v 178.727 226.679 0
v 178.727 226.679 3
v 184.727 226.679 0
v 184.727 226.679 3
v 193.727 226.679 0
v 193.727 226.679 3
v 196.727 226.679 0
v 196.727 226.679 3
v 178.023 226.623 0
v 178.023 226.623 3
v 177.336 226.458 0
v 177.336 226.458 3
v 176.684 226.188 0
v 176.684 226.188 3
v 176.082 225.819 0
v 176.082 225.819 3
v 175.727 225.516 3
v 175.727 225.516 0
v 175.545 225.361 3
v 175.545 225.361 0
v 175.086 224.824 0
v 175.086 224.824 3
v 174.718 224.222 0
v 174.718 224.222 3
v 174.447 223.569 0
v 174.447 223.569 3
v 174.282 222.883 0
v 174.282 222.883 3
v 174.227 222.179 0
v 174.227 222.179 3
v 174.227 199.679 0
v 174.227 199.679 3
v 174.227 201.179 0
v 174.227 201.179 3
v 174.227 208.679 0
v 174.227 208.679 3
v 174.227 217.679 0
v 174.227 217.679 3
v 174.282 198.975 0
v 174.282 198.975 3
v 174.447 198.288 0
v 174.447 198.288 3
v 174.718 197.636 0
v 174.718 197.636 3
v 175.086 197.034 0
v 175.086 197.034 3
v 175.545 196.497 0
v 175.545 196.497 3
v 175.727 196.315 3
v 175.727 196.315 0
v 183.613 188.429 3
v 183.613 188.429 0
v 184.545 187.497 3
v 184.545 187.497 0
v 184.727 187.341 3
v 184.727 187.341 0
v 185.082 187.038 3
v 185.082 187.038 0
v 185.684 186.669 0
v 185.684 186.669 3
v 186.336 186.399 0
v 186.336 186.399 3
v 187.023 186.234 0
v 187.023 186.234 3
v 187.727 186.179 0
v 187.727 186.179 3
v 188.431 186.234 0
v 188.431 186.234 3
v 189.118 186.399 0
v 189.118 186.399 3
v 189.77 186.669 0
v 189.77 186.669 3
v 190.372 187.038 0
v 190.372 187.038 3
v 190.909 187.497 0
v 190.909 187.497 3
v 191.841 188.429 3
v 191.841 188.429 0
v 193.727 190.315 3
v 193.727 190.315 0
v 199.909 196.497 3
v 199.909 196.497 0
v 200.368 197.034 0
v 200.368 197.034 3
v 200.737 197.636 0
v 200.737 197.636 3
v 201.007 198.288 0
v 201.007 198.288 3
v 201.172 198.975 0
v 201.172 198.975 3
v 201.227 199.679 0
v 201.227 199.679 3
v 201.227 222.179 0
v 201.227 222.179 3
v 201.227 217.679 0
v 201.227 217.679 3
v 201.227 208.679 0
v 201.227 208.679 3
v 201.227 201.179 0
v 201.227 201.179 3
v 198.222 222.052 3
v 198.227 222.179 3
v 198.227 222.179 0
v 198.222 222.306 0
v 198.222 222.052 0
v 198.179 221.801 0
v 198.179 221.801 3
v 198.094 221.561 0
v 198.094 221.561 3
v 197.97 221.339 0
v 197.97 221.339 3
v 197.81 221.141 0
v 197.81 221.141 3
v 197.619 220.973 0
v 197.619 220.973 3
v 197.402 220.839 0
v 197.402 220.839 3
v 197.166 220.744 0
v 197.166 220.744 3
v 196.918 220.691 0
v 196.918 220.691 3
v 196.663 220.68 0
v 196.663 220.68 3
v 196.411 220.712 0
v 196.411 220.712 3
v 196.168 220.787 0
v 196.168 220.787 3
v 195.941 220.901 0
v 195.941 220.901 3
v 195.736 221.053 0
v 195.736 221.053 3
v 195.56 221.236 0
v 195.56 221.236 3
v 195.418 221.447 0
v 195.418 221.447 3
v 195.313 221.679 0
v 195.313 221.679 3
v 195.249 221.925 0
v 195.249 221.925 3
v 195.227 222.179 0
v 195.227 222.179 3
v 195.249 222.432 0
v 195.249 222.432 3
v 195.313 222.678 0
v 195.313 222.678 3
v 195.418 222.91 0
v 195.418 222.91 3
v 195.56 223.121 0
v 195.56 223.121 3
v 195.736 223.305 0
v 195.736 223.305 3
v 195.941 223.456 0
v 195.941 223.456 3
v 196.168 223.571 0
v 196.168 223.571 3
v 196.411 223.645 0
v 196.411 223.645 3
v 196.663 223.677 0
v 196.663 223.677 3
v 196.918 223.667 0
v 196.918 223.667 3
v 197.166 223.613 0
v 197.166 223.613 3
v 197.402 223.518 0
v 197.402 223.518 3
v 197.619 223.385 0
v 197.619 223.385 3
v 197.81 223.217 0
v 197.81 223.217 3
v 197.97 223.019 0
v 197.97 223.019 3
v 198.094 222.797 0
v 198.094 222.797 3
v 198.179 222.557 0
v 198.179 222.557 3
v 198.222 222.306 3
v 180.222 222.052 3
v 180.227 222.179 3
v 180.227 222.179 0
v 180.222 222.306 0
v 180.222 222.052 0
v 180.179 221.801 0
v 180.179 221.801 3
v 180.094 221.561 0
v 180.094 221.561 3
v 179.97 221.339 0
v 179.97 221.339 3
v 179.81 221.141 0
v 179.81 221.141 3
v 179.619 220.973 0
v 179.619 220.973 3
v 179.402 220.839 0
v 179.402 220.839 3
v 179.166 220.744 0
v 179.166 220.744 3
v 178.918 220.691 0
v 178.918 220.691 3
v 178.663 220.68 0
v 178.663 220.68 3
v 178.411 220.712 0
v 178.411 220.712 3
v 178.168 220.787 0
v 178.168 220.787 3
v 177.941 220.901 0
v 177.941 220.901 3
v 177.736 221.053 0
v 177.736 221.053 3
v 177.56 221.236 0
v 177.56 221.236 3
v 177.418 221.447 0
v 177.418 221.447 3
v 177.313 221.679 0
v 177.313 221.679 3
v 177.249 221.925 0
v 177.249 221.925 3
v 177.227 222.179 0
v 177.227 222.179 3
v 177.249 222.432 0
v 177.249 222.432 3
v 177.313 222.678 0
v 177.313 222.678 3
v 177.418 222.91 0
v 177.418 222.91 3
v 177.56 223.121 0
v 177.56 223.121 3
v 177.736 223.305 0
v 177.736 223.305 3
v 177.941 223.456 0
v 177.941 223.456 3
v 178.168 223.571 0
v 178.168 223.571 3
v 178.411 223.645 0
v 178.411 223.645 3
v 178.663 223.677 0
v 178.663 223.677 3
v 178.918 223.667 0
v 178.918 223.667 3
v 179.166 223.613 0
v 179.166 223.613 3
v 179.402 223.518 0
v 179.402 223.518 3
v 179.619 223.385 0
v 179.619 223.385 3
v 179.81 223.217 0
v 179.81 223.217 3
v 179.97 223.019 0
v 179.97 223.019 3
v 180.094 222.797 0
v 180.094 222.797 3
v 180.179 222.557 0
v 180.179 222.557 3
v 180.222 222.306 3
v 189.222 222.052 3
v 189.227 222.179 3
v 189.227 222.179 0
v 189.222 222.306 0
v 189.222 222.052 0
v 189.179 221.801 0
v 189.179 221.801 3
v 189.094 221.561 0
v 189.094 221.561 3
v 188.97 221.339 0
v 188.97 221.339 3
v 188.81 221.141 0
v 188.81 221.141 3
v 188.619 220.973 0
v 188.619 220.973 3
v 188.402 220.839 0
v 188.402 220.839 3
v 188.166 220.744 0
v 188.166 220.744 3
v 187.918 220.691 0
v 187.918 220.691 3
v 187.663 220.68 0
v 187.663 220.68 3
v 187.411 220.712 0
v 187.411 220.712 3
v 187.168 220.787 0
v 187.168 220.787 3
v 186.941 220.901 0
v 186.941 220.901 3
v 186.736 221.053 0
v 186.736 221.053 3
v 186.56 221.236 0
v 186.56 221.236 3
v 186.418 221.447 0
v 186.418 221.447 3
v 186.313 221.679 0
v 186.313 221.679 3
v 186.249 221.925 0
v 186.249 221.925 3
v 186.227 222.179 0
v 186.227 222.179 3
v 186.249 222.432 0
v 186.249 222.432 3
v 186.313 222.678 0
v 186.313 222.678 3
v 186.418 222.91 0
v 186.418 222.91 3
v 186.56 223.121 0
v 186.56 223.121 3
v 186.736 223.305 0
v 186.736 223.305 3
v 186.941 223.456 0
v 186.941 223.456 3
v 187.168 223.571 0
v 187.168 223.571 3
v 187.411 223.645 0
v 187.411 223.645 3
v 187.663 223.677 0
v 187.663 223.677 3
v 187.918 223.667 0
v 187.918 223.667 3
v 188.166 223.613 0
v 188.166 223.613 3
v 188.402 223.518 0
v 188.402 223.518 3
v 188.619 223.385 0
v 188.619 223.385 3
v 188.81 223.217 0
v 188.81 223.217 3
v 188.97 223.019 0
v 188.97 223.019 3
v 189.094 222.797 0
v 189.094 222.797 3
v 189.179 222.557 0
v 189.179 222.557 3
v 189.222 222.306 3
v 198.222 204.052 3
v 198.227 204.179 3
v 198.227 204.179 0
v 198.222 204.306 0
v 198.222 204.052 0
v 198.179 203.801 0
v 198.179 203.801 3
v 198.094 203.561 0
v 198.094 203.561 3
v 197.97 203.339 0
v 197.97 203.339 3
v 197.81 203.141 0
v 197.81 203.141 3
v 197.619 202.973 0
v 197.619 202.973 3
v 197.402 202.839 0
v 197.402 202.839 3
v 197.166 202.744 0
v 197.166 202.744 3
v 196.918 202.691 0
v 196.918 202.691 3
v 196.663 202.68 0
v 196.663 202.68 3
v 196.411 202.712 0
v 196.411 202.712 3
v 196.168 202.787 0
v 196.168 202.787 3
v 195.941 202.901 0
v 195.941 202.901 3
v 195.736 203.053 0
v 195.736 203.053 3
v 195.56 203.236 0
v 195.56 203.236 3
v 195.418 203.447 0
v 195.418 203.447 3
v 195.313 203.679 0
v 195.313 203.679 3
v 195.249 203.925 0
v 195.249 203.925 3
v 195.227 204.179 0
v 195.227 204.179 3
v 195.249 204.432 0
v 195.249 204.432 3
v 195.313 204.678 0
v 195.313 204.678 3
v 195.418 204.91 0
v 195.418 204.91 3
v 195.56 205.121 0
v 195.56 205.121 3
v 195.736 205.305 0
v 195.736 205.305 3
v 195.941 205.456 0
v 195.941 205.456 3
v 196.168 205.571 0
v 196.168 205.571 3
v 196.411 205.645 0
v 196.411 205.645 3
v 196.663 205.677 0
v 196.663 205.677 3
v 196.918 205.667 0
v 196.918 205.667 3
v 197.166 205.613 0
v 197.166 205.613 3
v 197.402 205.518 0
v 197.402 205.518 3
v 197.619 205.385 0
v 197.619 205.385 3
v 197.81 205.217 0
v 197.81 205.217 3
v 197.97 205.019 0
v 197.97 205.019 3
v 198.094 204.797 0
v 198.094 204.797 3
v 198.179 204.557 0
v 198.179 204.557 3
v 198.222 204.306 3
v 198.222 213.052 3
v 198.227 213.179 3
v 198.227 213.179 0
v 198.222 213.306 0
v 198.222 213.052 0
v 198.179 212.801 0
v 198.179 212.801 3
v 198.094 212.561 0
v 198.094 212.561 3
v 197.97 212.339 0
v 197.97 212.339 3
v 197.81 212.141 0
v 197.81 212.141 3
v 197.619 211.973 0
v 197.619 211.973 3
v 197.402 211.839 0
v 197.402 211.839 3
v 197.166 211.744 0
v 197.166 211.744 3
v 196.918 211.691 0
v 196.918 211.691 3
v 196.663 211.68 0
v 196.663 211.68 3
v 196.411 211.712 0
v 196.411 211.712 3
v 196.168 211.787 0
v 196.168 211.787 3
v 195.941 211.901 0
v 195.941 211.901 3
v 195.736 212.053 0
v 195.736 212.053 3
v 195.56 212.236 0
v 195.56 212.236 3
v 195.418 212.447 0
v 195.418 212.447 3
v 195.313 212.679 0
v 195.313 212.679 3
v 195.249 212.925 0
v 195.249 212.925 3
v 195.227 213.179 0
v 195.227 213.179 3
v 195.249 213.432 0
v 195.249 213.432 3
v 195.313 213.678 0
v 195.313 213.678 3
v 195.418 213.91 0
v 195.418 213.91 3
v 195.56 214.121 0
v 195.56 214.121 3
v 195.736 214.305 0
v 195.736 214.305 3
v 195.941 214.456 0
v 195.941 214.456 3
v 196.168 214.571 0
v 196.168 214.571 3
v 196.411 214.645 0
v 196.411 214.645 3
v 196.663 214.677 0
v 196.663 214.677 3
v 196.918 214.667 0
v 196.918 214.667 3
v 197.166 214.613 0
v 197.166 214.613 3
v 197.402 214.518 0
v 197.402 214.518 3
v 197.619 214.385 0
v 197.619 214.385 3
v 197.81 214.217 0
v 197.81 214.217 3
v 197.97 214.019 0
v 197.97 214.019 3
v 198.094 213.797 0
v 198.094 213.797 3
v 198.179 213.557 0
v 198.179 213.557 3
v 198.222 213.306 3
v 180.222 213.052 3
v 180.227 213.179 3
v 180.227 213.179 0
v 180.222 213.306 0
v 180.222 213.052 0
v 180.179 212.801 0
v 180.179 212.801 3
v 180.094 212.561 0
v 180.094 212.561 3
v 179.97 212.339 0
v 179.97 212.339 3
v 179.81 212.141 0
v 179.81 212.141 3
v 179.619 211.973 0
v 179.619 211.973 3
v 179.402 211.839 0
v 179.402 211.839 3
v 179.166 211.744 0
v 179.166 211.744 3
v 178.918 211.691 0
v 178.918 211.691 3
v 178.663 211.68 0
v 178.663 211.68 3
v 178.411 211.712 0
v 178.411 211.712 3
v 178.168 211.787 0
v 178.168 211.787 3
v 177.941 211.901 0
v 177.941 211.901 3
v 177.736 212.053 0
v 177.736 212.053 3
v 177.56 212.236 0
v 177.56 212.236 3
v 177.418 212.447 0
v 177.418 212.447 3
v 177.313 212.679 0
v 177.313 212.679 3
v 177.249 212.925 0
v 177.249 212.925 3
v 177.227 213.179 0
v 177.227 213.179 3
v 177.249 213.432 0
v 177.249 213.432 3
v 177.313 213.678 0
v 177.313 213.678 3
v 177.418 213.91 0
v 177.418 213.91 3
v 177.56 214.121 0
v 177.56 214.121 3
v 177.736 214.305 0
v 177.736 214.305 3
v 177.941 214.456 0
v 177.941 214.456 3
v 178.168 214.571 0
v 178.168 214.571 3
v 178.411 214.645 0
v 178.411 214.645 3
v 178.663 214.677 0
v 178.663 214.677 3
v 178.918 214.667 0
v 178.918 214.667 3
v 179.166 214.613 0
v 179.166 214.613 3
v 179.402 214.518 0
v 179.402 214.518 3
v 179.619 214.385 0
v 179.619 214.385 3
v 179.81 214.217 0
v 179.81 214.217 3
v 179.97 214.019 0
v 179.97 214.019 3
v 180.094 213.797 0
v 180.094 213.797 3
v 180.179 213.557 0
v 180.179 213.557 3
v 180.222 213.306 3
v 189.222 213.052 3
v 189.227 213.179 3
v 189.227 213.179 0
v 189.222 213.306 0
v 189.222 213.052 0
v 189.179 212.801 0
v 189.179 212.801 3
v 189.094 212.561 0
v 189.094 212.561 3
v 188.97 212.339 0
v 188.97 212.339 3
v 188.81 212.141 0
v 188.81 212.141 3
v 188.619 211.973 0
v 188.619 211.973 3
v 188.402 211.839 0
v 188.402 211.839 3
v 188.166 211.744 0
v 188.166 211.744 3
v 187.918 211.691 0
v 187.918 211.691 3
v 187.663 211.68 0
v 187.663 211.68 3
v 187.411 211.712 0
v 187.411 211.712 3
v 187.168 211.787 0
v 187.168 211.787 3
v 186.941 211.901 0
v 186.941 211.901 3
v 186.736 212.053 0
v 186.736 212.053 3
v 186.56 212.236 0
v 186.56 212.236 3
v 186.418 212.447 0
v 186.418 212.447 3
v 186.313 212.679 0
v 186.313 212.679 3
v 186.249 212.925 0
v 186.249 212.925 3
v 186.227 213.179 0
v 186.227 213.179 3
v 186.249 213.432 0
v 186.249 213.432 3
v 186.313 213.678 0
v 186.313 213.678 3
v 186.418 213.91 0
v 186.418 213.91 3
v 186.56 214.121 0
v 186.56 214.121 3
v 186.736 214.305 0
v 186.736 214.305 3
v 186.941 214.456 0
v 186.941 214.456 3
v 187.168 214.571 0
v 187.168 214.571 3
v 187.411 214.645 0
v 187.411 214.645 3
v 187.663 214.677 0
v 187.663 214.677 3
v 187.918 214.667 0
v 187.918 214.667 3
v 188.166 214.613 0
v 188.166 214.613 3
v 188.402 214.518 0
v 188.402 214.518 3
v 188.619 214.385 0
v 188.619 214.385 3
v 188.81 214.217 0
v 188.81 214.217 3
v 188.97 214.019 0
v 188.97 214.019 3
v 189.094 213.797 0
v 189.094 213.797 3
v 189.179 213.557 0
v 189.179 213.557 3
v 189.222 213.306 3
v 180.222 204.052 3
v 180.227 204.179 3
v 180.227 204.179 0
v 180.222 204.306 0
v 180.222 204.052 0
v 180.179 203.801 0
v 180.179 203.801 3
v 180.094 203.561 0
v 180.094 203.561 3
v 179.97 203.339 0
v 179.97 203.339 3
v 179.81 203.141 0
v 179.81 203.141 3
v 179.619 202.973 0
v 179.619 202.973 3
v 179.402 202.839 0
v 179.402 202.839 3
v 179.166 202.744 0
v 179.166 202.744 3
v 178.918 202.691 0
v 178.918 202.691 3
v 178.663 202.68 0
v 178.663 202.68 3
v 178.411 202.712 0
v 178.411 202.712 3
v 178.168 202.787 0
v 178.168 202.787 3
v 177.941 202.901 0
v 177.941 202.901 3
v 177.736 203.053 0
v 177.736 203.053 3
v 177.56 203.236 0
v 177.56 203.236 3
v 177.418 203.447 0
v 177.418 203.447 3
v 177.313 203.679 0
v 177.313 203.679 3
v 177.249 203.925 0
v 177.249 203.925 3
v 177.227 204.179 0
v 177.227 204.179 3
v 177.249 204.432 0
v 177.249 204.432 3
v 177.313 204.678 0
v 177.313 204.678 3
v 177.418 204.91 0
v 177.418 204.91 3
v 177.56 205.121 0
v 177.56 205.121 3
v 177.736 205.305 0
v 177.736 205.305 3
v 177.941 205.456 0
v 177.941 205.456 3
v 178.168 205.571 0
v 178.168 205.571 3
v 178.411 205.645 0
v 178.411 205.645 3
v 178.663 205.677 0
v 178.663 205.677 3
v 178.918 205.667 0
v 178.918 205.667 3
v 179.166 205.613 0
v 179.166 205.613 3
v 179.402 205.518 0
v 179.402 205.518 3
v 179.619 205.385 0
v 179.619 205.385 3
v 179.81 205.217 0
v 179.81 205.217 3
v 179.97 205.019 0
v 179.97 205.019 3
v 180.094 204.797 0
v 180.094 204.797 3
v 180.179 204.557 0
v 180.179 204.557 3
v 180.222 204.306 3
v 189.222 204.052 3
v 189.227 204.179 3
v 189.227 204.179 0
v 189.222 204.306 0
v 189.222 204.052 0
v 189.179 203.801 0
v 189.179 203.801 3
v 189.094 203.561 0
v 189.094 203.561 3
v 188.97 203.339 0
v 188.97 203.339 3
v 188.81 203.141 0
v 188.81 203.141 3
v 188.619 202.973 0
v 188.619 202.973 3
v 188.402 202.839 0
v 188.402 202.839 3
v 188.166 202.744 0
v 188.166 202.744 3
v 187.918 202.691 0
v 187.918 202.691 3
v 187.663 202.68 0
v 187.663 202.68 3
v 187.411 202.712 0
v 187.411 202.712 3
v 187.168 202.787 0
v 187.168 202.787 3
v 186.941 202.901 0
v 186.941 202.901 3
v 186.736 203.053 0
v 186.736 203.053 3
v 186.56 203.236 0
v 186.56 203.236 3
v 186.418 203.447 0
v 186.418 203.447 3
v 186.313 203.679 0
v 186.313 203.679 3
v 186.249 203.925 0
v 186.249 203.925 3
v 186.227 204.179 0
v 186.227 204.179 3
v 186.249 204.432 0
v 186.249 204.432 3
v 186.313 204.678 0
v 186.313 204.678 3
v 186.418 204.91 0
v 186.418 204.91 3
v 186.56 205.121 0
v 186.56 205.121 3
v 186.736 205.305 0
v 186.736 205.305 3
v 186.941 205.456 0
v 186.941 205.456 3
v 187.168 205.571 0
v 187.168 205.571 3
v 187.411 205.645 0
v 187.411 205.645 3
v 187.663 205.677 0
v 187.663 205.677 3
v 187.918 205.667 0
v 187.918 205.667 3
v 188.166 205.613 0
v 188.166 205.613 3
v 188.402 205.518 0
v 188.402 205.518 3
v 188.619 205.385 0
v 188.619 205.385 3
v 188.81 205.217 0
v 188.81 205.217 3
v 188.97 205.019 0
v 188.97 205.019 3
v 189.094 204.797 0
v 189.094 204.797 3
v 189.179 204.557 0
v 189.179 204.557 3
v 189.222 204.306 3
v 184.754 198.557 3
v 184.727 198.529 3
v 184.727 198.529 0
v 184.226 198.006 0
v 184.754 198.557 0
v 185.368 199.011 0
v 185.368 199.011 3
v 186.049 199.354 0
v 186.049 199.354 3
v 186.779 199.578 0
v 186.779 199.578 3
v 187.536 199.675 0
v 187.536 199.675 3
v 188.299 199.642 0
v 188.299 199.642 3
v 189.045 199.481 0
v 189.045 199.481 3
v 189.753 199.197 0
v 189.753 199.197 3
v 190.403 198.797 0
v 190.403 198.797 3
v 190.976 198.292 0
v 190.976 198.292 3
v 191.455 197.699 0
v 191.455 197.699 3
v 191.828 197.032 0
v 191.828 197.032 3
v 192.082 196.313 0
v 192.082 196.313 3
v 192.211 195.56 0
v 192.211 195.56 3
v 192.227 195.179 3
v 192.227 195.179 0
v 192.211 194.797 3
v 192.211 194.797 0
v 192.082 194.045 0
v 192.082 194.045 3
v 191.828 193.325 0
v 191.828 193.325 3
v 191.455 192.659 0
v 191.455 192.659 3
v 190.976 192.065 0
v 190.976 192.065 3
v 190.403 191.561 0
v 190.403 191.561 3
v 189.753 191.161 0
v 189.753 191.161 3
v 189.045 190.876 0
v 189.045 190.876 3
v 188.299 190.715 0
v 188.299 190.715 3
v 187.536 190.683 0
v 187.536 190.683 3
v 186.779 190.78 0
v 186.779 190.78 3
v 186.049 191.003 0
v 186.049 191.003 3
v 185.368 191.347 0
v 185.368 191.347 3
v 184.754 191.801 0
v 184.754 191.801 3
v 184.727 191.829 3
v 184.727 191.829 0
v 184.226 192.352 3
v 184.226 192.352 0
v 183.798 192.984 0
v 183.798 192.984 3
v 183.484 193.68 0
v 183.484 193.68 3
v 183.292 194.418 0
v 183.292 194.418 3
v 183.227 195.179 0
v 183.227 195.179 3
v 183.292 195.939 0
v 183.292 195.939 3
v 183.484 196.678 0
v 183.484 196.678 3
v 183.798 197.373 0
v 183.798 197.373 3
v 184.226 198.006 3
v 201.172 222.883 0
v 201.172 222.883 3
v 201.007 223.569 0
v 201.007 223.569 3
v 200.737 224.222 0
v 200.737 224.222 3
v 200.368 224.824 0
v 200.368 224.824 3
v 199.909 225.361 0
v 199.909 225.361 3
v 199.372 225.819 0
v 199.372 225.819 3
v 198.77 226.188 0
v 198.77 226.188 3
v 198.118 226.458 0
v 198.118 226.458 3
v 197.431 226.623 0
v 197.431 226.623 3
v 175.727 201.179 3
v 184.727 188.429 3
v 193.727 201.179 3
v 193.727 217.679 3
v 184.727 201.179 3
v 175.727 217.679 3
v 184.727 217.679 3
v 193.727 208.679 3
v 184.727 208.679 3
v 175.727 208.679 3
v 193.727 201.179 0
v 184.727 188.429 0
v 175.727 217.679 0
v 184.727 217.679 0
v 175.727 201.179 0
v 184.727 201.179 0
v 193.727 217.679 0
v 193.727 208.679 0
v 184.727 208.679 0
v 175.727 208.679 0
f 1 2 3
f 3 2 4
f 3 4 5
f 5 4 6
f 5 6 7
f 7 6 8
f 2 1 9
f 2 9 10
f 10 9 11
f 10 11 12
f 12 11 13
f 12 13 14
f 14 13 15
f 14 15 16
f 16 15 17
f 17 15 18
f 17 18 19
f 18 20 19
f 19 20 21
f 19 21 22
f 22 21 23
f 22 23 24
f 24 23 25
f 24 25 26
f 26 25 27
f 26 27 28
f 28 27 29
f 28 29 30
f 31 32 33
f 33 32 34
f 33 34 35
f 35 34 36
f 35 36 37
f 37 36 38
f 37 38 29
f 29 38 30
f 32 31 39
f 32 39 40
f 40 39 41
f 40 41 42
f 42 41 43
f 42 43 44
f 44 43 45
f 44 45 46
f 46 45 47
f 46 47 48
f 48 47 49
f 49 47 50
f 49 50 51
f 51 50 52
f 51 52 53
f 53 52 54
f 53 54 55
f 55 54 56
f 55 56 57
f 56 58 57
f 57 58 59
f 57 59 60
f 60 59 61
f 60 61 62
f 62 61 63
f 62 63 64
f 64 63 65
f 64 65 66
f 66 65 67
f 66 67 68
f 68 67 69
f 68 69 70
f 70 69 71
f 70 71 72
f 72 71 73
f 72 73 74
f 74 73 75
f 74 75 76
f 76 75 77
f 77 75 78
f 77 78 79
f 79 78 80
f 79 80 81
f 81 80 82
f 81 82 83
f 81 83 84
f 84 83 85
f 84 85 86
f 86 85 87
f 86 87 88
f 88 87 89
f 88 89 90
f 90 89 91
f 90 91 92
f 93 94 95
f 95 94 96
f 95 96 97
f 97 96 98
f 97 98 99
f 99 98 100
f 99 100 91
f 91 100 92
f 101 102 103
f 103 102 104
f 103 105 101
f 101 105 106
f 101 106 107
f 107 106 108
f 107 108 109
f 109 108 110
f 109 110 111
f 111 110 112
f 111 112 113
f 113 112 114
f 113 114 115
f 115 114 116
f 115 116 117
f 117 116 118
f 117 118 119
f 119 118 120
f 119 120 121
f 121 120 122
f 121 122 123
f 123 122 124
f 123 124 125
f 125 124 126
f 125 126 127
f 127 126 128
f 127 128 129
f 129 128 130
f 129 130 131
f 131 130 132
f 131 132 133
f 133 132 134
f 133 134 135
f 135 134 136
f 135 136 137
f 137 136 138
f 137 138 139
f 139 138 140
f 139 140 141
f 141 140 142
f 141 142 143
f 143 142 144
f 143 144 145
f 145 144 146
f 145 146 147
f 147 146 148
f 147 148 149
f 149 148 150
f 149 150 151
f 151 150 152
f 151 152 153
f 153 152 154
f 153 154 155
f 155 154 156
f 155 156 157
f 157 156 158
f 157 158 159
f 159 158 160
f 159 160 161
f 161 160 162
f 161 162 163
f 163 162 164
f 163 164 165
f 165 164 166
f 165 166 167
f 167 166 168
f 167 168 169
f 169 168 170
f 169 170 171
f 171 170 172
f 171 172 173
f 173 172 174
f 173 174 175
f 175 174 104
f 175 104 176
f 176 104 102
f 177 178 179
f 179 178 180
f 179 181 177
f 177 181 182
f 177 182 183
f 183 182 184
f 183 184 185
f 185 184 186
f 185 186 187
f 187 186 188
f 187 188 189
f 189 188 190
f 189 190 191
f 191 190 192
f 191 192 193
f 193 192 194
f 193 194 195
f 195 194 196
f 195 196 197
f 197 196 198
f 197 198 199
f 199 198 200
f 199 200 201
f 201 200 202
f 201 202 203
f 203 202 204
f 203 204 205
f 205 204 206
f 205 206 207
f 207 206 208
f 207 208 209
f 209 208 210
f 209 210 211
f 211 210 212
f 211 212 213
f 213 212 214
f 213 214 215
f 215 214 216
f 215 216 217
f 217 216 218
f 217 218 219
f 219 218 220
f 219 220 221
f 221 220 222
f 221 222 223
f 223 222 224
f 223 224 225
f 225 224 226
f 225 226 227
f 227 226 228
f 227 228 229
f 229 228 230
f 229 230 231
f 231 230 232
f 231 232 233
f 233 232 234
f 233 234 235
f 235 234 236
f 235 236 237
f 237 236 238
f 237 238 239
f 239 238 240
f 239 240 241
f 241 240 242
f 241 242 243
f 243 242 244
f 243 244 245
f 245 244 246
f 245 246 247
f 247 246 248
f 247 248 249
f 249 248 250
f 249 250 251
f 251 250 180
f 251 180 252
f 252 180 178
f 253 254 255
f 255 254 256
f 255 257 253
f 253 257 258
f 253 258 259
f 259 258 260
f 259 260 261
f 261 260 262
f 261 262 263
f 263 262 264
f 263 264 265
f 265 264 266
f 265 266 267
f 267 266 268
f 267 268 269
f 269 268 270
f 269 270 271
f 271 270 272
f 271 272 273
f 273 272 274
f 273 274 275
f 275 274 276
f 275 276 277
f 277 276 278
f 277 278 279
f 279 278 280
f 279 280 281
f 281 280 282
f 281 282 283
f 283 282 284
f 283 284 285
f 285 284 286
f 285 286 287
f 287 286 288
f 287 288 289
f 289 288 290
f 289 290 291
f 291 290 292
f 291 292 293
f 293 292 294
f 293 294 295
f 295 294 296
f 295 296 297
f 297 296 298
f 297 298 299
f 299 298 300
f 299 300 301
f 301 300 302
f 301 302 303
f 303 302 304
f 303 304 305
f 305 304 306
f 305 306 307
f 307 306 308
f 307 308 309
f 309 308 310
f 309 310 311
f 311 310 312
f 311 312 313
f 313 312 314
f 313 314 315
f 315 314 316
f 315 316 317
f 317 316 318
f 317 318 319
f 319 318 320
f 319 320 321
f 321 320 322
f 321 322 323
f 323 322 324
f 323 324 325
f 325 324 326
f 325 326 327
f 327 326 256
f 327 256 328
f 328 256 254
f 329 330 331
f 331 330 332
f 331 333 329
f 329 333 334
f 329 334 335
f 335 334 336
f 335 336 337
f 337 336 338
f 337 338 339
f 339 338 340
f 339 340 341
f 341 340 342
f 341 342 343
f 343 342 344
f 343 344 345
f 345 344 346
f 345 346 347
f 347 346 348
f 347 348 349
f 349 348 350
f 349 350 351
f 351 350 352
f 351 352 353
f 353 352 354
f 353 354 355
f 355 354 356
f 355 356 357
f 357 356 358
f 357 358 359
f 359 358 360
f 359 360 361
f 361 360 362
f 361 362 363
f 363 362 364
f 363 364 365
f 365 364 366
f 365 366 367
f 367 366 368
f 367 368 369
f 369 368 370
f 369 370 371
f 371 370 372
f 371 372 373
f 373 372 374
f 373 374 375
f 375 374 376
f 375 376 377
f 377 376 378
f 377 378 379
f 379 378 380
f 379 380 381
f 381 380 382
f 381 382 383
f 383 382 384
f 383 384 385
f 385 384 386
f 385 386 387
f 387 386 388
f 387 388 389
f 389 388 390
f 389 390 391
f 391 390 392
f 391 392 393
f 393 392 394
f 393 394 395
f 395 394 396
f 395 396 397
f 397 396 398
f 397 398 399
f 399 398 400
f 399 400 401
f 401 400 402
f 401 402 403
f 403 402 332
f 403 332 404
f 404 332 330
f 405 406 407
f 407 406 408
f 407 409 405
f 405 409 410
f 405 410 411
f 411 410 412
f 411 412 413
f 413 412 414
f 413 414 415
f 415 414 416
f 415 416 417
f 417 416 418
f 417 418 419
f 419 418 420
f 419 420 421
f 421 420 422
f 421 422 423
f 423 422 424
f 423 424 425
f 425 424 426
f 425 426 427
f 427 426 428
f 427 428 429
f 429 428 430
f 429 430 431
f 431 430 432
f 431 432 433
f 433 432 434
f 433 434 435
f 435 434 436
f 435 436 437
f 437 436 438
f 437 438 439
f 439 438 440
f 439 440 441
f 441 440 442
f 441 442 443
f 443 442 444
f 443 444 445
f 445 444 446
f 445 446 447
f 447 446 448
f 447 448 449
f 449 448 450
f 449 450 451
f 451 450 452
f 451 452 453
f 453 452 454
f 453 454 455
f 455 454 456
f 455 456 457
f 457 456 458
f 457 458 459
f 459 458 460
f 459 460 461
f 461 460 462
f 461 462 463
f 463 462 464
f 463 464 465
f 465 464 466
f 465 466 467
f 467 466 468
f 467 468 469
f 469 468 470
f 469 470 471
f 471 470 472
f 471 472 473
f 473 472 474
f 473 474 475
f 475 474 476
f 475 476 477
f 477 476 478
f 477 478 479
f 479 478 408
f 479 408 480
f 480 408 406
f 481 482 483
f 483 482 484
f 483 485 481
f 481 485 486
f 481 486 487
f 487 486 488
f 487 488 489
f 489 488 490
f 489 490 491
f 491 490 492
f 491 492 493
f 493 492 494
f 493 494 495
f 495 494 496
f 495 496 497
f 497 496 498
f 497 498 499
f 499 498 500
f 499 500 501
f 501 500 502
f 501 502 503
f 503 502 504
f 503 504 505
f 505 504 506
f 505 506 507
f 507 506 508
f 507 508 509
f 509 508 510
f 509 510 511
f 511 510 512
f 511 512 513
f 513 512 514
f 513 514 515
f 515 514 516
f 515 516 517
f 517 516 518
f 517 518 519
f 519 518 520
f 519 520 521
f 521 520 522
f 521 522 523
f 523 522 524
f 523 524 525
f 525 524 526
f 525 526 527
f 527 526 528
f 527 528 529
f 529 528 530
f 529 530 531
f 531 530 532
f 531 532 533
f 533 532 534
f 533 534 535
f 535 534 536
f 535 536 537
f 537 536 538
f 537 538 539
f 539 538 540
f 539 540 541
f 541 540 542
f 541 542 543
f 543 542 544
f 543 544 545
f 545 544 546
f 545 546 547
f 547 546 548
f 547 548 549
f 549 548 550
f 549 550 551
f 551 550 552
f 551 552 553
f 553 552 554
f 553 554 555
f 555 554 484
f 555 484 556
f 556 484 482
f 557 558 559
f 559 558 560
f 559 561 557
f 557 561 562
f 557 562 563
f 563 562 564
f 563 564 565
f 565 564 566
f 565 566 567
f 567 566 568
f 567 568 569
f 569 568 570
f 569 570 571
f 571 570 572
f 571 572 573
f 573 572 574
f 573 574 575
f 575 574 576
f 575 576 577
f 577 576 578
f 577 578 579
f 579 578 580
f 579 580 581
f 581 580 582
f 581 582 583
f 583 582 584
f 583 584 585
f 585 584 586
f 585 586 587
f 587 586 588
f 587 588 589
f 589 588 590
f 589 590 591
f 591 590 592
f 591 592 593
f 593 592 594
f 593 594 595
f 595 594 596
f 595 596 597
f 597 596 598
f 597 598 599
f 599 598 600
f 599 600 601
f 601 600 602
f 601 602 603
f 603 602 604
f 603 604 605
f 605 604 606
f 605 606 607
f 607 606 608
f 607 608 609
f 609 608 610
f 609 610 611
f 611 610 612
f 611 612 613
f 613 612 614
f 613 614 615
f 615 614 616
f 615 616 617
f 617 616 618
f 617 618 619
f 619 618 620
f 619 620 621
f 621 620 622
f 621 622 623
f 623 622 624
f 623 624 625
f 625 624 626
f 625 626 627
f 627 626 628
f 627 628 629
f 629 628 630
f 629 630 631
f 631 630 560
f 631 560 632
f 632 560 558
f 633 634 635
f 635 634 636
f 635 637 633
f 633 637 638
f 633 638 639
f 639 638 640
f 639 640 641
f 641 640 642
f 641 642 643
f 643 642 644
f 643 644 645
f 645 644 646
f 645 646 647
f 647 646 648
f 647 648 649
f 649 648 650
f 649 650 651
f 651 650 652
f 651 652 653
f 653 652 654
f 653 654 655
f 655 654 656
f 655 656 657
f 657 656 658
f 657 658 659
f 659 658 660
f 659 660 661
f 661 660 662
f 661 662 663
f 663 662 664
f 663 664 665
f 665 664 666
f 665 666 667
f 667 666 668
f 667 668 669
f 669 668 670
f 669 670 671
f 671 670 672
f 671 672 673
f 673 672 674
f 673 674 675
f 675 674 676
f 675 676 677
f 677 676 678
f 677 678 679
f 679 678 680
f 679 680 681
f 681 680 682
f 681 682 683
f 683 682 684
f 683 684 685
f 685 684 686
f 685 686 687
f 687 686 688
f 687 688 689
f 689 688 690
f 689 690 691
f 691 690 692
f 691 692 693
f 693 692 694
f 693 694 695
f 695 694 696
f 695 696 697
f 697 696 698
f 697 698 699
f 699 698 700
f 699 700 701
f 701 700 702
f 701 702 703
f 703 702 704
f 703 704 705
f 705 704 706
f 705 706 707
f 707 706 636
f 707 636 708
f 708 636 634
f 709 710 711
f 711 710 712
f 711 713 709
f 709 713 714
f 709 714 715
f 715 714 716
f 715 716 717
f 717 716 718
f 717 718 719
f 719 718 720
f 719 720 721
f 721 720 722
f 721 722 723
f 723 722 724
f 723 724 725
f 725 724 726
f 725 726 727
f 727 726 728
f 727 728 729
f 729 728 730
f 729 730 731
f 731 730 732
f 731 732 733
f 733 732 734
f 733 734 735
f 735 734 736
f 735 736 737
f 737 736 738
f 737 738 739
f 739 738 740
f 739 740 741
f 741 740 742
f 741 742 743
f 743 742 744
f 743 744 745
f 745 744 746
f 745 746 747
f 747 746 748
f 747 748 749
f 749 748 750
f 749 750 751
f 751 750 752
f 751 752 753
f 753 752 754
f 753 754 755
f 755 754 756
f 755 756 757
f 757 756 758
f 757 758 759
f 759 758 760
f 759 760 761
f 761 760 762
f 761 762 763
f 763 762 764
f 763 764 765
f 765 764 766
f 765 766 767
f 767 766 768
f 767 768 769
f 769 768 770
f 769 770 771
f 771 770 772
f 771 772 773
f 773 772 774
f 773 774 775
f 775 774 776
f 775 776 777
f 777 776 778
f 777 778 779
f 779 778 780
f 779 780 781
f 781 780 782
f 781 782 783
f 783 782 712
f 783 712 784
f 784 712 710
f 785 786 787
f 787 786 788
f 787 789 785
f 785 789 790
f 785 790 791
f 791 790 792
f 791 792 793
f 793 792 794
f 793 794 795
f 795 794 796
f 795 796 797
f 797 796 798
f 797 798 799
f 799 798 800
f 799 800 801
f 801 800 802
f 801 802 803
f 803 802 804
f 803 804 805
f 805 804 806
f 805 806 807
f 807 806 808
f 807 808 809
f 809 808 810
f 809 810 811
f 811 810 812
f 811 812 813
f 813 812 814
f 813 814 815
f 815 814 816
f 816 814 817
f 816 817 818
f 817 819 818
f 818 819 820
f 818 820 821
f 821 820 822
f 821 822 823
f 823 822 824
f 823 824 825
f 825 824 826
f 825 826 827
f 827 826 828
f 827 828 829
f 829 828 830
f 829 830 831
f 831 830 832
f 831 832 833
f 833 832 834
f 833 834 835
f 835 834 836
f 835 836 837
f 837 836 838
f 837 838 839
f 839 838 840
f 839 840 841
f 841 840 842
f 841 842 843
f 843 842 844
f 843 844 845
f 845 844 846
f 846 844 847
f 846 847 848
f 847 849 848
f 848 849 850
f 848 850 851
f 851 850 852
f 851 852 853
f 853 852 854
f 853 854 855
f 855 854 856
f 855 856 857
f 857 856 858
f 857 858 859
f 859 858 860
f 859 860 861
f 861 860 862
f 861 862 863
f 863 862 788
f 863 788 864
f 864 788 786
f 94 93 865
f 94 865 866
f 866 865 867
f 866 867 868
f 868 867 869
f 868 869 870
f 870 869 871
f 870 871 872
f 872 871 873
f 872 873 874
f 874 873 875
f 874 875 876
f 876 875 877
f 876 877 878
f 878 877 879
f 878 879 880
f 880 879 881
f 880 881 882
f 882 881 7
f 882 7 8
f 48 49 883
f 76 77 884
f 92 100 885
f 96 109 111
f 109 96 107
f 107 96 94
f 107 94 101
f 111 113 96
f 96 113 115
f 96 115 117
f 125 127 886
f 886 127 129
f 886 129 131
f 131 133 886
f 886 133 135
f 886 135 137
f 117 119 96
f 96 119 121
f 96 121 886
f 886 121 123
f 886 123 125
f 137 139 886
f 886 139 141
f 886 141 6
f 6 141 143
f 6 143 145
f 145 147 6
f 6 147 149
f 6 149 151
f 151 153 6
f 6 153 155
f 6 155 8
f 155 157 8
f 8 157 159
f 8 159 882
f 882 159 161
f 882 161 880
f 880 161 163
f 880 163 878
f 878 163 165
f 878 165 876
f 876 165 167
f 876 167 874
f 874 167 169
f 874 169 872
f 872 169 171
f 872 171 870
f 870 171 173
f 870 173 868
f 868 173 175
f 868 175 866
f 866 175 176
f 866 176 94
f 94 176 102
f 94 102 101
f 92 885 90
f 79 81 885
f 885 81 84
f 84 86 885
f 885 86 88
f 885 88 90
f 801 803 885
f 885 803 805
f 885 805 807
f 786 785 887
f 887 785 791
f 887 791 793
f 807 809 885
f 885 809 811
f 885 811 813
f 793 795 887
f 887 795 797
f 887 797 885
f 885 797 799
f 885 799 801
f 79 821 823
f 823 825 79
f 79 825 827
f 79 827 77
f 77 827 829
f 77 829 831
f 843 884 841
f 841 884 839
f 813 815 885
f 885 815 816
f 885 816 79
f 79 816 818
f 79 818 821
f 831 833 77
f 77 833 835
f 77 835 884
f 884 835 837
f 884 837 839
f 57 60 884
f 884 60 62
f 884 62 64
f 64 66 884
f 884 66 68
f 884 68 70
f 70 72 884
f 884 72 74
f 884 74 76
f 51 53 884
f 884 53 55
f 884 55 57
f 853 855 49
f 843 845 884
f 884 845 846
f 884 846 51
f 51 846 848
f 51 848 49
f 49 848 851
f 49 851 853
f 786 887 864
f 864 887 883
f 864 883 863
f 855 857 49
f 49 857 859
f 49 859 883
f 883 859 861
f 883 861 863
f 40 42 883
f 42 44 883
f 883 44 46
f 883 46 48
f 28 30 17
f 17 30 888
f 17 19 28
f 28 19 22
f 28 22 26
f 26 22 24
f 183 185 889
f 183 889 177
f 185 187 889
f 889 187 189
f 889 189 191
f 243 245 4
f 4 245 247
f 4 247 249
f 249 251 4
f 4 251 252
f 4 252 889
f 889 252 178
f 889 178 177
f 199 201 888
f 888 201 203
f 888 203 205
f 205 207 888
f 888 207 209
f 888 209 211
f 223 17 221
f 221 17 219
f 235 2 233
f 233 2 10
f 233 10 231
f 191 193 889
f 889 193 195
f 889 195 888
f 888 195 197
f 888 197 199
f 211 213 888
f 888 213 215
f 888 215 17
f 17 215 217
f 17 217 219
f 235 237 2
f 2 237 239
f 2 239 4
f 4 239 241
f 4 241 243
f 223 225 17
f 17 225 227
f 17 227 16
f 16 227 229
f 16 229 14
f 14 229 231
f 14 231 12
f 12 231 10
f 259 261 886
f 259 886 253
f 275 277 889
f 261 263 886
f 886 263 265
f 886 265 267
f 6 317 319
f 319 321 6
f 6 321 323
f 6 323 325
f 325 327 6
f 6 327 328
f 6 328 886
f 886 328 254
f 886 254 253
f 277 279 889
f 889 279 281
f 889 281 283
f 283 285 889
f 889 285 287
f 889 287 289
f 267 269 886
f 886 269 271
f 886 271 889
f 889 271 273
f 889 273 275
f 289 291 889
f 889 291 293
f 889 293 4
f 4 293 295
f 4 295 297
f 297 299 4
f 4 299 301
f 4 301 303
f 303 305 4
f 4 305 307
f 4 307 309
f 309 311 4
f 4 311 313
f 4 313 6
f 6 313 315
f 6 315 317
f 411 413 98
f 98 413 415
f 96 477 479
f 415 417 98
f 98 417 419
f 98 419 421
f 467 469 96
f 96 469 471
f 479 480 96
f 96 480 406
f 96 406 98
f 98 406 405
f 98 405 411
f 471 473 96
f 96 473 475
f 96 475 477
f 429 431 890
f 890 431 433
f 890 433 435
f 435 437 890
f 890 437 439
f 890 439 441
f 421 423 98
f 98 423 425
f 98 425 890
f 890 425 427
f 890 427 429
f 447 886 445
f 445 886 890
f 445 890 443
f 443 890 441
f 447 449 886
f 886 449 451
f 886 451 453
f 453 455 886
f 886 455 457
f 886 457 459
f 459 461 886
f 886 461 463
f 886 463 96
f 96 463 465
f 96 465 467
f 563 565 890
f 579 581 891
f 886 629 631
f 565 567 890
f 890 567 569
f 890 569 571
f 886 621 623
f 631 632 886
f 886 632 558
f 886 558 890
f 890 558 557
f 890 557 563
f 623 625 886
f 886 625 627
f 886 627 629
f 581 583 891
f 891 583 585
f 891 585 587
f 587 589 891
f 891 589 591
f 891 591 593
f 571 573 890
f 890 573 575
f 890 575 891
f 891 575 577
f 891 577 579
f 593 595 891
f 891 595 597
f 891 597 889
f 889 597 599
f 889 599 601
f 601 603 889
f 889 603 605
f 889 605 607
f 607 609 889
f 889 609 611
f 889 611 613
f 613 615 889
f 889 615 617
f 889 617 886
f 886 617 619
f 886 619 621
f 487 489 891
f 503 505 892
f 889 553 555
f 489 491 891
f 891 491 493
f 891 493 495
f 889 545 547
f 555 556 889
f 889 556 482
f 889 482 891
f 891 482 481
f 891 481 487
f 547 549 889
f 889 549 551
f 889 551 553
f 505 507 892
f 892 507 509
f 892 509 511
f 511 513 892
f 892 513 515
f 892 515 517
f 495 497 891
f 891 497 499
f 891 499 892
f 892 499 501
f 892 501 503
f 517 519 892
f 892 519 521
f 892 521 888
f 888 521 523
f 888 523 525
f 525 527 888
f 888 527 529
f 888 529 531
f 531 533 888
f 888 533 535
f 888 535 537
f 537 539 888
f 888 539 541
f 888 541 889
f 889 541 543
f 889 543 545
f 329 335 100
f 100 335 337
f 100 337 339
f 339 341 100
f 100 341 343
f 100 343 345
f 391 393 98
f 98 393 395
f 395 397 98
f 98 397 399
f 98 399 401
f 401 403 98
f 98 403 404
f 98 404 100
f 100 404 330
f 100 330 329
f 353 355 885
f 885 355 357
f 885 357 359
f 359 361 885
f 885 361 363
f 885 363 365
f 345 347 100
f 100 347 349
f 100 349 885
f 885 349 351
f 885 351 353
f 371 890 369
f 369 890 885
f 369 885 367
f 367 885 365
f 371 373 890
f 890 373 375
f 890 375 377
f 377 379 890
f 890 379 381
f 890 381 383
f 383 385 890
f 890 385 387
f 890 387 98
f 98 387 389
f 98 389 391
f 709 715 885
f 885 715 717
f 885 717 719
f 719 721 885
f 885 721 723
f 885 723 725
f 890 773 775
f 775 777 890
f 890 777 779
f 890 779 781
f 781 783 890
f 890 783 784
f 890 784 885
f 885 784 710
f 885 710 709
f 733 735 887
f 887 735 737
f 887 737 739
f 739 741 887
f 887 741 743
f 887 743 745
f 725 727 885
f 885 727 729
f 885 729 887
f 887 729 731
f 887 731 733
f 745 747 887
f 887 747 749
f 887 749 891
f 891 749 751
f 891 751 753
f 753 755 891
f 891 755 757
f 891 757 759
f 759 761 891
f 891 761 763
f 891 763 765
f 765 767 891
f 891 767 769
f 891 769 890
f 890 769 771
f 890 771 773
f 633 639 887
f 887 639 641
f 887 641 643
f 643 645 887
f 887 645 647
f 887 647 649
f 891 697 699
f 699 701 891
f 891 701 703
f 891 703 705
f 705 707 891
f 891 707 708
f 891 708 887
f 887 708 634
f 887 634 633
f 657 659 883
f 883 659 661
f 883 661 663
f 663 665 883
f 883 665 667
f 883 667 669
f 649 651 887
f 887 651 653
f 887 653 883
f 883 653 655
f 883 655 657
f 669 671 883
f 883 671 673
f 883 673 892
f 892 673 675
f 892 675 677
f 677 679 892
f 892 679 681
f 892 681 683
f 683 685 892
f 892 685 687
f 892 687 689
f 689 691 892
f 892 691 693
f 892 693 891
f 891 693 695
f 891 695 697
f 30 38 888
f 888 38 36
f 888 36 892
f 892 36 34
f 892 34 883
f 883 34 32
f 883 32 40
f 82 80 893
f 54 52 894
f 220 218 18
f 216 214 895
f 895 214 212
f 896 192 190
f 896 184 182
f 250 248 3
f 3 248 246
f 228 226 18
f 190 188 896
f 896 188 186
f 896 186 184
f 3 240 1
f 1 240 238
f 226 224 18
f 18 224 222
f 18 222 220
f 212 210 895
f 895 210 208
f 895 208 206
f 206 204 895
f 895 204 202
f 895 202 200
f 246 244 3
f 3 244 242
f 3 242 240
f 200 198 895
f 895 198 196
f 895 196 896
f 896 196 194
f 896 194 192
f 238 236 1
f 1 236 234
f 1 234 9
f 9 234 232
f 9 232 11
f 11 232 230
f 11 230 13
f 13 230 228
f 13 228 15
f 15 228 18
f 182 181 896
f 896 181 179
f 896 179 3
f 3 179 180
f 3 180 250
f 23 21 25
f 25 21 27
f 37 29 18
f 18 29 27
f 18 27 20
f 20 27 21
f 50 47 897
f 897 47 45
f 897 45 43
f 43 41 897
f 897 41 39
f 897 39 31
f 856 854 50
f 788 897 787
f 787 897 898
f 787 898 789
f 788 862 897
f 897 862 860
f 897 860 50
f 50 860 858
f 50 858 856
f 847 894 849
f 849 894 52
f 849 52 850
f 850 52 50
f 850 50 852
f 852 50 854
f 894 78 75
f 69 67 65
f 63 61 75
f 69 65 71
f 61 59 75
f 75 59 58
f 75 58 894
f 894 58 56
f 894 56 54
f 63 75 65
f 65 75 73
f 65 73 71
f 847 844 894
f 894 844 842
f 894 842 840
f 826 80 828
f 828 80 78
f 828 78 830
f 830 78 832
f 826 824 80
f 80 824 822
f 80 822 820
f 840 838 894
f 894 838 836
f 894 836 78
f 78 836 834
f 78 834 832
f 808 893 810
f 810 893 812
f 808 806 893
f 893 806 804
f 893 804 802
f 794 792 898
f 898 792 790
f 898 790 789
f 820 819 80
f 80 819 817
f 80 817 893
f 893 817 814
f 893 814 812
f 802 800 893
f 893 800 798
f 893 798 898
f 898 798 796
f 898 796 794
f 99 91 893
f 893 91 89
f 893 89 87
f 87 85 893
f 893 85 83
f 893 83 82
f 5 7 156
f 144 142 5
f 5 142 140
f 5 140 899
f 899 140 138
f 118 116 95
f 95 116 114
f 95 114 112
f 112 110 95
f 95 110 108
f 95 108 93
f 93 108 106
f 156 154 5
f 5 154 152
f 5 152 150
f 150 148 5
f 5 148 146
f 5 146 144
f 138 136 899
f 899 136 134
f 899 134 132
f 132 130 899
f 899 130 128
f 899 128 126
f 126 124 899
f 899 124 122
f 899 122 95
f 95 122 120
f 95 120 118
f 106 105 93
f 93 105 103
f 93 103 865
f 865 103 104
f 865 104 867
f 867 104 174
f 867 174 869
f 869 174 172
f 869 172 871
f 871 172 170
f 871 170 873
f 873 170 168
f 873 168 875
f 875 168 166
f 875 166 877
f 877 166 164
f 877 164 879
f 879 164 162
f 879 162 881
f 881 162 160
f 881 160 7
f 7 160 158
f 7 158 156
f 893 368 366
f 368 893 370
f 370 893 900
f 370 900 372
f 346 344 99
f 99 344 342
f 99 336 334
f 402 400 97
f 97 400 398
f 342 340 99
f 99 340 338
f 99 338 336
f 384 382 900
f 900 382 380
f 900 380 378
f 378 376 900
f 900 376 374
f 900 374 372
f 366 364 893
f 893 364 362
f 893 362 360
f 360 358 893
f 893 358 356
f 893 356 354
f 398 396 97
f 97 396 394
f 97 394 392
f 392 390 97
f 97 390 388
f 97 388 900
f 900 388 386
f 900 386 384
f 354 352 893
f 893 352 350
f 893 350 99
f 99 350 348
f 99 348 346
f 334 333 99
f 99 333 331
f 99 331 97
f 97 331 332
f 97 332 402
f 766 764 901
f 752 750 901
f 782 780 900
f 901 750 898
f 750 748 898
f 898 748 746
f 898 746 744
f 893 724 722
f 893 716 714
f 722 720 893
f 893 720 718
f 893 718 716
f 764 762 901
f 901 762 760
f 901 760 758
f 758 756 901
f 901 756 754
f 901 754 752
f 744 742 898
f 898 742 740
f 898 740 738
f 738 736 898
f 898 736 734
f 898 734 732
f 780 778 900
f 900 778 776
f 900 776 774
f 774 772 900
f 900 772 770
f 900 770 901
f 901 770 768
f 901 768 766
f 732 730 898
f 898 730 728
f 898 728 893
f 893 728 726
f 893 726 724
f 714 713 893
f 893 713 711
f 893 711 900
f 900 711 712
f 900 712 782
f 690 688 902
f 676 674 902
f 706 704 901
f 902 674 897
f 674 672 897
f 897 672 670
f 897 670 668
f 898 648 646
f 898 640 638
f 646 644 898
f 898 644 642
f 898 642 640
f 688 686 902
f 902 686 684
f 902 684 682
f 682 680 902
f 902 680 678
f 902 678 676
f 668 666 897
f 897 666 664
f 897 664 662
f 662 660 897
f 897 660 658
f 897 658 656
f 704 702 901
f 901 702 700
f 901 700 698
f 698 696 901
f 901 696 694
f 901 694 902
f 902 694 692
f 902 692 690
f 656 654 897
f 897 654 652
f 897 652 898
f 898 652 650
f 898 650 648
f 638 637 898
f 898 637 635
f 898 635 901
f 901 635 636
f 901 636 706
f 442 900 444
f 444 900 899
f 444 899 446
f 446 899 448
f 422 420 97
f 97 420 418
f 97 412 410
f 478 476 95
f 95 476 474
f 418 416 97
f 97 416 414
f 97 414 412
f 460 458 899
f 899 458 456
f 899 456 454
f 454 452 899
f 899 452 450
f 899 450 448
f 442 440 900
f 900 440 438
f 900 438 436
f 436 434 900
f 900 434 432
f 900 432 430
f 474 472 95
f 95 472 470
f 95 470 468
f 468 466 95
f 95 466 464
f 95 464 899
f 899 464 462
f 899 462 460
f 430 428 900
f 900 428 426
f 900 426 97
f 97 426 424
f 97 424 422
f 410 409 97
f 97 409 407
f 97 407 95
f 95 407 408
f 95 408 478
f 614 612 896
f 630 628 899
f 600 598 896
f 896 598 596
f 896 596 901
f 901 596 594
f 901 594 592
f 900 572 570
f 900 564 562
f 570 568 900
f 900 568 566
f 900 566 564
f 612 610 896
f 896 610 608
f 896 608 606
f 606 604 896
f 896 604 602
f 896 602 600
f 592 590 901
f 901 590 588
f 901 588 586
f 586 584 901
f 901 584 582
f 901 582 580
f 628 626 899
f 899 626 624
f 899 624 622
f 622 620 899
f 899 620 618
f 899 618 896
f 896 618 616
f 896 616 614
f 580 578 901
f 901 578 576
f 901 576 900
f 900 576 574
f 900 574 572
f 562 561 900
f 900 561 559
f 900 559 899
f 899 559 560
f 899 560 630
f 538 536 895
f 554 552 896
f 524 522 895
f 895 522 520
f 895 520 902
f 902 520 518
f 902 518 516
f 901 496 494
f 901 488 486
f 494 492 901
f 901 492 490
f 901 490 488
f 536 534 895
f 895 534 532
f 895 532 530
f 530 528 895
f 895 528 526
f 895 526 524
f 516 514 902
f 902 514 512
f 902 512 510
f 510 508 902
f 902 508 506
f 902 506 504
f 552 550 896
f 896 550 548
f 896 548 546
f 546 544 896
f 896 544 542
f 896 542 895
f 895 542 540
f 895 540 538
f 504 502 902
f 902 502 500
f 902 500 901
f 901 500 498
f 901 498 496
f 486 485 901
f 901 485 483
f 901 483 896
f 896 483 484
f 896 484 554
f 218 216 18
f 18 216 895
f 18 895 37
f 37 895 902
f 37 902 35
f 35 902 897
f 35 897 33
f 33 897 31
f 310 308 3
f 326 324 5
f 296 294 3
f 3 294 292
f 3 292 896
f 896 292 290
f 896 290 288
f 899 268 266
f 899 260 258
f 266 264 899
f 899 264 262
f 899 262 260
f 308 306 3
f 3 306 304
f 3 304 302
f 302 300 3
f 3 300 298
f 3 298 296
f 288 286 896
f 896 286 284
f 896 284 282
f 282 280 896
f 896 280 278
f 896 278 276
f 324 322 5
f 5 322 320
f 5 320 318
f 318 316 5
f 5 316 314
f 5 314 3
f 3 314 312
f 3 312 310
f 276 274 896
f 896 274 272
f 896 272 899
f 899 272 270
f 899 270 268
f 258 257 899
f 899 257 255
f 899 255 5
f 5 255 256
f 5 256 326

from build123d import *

# Parameters (mm, degrees)
MODEL_R                 = 1.5
MODEL_R_2               = 4.5
SALIENTE_EXTRUIR1_DEPTH = 3


with BuildPart() as part:
    # Model → Saliente-Extruir1 (new body)
    with BuildSketch(Plane.XY):
        with BuildLine():
            Line((174.227054575, 222.178720063), (174.227054575, 213.178720063))
            Line((174.227054575, 213.178720063), (174.227054575, 199.678720063))
            ThreePointArc((174.227054575, 199.678720063), (174.569596678, 197.956644617), (175.545074059, 196.496739548))
            Line((175.545074059, 196.496739548), (184.545074059, 187.496739548))
            ThreePointArc((184.545074059, 187.496739548), (187.727054575, 186.178720063), (190.90903509, 187.496739548))
            Line((190.90903509, 187.496739548), (199.90903509, 196.496739548))
            ThreePointArc((199.90903509, 196.496739548), (200.884512471, 197.956644617), (201.227054575, 199.678720063))
            Line((201.227054575, 199.678720063), (201.227054575, 222.178720063))
            ThreePointArc((201.227054575, 222.178720063), (199.90903509, 225.360700578), (196.727054575, 226.678720063))
            Line((196.727054575, 226.678720063), (178.727054575, 226.678720063))
            ThreePointArc((178.727054575, 226.678720063), (175.545074059, 225.360700578), (174.227054575, 222.178720063))
        make_face()
        with Locations((178.727054575, 204.178720063)):
            Circle(MODEL_R, mode=Mode.SUBTRACT)
        with Locations((187.727054575, 195.178720063)):
            Circle(MODEL_R_2, mode=Mode.SUBTRACT)
        with Locations((187.727054575, 204.178720063)):
            Circle(MODEL_R, mode=Mode.SUBTRACT)
        with Locations((196.727054575, 204.178720063)):
            Circle(MODEL_R, mode=Mode.SUBTRACT)
        with Locations((178.727054575, 213.178720063)):
            Circle(MODEL_R, mode=Mode.SUBTRACT)
        with Locations((178.727054575, 222.178720063)):
            Circle(MODEL_R, mode=Mode.SUBTRACT)
        with Locations((187.727054575, 213.178720063)):
            Circle(MODEL_R, mode=Mode.SUBTRACT)
        with Locations((196.727054575, 213.178720063)):
            Circle(MODEL_R, mode=Mode.SUBTRACT)
        with Locations((187.727054575, 222.178720063)):
            Circle(MODEL_R, mode=Mode.SUBTRACT)
        with Locations((196.727054575, 222.178720063)):
            Circle(MODEL_R, mode=Mode.SUBTRACT)
    extrude(amount=SALIENTE_EXTRUIR1_DEPTH)


solid = part.part
